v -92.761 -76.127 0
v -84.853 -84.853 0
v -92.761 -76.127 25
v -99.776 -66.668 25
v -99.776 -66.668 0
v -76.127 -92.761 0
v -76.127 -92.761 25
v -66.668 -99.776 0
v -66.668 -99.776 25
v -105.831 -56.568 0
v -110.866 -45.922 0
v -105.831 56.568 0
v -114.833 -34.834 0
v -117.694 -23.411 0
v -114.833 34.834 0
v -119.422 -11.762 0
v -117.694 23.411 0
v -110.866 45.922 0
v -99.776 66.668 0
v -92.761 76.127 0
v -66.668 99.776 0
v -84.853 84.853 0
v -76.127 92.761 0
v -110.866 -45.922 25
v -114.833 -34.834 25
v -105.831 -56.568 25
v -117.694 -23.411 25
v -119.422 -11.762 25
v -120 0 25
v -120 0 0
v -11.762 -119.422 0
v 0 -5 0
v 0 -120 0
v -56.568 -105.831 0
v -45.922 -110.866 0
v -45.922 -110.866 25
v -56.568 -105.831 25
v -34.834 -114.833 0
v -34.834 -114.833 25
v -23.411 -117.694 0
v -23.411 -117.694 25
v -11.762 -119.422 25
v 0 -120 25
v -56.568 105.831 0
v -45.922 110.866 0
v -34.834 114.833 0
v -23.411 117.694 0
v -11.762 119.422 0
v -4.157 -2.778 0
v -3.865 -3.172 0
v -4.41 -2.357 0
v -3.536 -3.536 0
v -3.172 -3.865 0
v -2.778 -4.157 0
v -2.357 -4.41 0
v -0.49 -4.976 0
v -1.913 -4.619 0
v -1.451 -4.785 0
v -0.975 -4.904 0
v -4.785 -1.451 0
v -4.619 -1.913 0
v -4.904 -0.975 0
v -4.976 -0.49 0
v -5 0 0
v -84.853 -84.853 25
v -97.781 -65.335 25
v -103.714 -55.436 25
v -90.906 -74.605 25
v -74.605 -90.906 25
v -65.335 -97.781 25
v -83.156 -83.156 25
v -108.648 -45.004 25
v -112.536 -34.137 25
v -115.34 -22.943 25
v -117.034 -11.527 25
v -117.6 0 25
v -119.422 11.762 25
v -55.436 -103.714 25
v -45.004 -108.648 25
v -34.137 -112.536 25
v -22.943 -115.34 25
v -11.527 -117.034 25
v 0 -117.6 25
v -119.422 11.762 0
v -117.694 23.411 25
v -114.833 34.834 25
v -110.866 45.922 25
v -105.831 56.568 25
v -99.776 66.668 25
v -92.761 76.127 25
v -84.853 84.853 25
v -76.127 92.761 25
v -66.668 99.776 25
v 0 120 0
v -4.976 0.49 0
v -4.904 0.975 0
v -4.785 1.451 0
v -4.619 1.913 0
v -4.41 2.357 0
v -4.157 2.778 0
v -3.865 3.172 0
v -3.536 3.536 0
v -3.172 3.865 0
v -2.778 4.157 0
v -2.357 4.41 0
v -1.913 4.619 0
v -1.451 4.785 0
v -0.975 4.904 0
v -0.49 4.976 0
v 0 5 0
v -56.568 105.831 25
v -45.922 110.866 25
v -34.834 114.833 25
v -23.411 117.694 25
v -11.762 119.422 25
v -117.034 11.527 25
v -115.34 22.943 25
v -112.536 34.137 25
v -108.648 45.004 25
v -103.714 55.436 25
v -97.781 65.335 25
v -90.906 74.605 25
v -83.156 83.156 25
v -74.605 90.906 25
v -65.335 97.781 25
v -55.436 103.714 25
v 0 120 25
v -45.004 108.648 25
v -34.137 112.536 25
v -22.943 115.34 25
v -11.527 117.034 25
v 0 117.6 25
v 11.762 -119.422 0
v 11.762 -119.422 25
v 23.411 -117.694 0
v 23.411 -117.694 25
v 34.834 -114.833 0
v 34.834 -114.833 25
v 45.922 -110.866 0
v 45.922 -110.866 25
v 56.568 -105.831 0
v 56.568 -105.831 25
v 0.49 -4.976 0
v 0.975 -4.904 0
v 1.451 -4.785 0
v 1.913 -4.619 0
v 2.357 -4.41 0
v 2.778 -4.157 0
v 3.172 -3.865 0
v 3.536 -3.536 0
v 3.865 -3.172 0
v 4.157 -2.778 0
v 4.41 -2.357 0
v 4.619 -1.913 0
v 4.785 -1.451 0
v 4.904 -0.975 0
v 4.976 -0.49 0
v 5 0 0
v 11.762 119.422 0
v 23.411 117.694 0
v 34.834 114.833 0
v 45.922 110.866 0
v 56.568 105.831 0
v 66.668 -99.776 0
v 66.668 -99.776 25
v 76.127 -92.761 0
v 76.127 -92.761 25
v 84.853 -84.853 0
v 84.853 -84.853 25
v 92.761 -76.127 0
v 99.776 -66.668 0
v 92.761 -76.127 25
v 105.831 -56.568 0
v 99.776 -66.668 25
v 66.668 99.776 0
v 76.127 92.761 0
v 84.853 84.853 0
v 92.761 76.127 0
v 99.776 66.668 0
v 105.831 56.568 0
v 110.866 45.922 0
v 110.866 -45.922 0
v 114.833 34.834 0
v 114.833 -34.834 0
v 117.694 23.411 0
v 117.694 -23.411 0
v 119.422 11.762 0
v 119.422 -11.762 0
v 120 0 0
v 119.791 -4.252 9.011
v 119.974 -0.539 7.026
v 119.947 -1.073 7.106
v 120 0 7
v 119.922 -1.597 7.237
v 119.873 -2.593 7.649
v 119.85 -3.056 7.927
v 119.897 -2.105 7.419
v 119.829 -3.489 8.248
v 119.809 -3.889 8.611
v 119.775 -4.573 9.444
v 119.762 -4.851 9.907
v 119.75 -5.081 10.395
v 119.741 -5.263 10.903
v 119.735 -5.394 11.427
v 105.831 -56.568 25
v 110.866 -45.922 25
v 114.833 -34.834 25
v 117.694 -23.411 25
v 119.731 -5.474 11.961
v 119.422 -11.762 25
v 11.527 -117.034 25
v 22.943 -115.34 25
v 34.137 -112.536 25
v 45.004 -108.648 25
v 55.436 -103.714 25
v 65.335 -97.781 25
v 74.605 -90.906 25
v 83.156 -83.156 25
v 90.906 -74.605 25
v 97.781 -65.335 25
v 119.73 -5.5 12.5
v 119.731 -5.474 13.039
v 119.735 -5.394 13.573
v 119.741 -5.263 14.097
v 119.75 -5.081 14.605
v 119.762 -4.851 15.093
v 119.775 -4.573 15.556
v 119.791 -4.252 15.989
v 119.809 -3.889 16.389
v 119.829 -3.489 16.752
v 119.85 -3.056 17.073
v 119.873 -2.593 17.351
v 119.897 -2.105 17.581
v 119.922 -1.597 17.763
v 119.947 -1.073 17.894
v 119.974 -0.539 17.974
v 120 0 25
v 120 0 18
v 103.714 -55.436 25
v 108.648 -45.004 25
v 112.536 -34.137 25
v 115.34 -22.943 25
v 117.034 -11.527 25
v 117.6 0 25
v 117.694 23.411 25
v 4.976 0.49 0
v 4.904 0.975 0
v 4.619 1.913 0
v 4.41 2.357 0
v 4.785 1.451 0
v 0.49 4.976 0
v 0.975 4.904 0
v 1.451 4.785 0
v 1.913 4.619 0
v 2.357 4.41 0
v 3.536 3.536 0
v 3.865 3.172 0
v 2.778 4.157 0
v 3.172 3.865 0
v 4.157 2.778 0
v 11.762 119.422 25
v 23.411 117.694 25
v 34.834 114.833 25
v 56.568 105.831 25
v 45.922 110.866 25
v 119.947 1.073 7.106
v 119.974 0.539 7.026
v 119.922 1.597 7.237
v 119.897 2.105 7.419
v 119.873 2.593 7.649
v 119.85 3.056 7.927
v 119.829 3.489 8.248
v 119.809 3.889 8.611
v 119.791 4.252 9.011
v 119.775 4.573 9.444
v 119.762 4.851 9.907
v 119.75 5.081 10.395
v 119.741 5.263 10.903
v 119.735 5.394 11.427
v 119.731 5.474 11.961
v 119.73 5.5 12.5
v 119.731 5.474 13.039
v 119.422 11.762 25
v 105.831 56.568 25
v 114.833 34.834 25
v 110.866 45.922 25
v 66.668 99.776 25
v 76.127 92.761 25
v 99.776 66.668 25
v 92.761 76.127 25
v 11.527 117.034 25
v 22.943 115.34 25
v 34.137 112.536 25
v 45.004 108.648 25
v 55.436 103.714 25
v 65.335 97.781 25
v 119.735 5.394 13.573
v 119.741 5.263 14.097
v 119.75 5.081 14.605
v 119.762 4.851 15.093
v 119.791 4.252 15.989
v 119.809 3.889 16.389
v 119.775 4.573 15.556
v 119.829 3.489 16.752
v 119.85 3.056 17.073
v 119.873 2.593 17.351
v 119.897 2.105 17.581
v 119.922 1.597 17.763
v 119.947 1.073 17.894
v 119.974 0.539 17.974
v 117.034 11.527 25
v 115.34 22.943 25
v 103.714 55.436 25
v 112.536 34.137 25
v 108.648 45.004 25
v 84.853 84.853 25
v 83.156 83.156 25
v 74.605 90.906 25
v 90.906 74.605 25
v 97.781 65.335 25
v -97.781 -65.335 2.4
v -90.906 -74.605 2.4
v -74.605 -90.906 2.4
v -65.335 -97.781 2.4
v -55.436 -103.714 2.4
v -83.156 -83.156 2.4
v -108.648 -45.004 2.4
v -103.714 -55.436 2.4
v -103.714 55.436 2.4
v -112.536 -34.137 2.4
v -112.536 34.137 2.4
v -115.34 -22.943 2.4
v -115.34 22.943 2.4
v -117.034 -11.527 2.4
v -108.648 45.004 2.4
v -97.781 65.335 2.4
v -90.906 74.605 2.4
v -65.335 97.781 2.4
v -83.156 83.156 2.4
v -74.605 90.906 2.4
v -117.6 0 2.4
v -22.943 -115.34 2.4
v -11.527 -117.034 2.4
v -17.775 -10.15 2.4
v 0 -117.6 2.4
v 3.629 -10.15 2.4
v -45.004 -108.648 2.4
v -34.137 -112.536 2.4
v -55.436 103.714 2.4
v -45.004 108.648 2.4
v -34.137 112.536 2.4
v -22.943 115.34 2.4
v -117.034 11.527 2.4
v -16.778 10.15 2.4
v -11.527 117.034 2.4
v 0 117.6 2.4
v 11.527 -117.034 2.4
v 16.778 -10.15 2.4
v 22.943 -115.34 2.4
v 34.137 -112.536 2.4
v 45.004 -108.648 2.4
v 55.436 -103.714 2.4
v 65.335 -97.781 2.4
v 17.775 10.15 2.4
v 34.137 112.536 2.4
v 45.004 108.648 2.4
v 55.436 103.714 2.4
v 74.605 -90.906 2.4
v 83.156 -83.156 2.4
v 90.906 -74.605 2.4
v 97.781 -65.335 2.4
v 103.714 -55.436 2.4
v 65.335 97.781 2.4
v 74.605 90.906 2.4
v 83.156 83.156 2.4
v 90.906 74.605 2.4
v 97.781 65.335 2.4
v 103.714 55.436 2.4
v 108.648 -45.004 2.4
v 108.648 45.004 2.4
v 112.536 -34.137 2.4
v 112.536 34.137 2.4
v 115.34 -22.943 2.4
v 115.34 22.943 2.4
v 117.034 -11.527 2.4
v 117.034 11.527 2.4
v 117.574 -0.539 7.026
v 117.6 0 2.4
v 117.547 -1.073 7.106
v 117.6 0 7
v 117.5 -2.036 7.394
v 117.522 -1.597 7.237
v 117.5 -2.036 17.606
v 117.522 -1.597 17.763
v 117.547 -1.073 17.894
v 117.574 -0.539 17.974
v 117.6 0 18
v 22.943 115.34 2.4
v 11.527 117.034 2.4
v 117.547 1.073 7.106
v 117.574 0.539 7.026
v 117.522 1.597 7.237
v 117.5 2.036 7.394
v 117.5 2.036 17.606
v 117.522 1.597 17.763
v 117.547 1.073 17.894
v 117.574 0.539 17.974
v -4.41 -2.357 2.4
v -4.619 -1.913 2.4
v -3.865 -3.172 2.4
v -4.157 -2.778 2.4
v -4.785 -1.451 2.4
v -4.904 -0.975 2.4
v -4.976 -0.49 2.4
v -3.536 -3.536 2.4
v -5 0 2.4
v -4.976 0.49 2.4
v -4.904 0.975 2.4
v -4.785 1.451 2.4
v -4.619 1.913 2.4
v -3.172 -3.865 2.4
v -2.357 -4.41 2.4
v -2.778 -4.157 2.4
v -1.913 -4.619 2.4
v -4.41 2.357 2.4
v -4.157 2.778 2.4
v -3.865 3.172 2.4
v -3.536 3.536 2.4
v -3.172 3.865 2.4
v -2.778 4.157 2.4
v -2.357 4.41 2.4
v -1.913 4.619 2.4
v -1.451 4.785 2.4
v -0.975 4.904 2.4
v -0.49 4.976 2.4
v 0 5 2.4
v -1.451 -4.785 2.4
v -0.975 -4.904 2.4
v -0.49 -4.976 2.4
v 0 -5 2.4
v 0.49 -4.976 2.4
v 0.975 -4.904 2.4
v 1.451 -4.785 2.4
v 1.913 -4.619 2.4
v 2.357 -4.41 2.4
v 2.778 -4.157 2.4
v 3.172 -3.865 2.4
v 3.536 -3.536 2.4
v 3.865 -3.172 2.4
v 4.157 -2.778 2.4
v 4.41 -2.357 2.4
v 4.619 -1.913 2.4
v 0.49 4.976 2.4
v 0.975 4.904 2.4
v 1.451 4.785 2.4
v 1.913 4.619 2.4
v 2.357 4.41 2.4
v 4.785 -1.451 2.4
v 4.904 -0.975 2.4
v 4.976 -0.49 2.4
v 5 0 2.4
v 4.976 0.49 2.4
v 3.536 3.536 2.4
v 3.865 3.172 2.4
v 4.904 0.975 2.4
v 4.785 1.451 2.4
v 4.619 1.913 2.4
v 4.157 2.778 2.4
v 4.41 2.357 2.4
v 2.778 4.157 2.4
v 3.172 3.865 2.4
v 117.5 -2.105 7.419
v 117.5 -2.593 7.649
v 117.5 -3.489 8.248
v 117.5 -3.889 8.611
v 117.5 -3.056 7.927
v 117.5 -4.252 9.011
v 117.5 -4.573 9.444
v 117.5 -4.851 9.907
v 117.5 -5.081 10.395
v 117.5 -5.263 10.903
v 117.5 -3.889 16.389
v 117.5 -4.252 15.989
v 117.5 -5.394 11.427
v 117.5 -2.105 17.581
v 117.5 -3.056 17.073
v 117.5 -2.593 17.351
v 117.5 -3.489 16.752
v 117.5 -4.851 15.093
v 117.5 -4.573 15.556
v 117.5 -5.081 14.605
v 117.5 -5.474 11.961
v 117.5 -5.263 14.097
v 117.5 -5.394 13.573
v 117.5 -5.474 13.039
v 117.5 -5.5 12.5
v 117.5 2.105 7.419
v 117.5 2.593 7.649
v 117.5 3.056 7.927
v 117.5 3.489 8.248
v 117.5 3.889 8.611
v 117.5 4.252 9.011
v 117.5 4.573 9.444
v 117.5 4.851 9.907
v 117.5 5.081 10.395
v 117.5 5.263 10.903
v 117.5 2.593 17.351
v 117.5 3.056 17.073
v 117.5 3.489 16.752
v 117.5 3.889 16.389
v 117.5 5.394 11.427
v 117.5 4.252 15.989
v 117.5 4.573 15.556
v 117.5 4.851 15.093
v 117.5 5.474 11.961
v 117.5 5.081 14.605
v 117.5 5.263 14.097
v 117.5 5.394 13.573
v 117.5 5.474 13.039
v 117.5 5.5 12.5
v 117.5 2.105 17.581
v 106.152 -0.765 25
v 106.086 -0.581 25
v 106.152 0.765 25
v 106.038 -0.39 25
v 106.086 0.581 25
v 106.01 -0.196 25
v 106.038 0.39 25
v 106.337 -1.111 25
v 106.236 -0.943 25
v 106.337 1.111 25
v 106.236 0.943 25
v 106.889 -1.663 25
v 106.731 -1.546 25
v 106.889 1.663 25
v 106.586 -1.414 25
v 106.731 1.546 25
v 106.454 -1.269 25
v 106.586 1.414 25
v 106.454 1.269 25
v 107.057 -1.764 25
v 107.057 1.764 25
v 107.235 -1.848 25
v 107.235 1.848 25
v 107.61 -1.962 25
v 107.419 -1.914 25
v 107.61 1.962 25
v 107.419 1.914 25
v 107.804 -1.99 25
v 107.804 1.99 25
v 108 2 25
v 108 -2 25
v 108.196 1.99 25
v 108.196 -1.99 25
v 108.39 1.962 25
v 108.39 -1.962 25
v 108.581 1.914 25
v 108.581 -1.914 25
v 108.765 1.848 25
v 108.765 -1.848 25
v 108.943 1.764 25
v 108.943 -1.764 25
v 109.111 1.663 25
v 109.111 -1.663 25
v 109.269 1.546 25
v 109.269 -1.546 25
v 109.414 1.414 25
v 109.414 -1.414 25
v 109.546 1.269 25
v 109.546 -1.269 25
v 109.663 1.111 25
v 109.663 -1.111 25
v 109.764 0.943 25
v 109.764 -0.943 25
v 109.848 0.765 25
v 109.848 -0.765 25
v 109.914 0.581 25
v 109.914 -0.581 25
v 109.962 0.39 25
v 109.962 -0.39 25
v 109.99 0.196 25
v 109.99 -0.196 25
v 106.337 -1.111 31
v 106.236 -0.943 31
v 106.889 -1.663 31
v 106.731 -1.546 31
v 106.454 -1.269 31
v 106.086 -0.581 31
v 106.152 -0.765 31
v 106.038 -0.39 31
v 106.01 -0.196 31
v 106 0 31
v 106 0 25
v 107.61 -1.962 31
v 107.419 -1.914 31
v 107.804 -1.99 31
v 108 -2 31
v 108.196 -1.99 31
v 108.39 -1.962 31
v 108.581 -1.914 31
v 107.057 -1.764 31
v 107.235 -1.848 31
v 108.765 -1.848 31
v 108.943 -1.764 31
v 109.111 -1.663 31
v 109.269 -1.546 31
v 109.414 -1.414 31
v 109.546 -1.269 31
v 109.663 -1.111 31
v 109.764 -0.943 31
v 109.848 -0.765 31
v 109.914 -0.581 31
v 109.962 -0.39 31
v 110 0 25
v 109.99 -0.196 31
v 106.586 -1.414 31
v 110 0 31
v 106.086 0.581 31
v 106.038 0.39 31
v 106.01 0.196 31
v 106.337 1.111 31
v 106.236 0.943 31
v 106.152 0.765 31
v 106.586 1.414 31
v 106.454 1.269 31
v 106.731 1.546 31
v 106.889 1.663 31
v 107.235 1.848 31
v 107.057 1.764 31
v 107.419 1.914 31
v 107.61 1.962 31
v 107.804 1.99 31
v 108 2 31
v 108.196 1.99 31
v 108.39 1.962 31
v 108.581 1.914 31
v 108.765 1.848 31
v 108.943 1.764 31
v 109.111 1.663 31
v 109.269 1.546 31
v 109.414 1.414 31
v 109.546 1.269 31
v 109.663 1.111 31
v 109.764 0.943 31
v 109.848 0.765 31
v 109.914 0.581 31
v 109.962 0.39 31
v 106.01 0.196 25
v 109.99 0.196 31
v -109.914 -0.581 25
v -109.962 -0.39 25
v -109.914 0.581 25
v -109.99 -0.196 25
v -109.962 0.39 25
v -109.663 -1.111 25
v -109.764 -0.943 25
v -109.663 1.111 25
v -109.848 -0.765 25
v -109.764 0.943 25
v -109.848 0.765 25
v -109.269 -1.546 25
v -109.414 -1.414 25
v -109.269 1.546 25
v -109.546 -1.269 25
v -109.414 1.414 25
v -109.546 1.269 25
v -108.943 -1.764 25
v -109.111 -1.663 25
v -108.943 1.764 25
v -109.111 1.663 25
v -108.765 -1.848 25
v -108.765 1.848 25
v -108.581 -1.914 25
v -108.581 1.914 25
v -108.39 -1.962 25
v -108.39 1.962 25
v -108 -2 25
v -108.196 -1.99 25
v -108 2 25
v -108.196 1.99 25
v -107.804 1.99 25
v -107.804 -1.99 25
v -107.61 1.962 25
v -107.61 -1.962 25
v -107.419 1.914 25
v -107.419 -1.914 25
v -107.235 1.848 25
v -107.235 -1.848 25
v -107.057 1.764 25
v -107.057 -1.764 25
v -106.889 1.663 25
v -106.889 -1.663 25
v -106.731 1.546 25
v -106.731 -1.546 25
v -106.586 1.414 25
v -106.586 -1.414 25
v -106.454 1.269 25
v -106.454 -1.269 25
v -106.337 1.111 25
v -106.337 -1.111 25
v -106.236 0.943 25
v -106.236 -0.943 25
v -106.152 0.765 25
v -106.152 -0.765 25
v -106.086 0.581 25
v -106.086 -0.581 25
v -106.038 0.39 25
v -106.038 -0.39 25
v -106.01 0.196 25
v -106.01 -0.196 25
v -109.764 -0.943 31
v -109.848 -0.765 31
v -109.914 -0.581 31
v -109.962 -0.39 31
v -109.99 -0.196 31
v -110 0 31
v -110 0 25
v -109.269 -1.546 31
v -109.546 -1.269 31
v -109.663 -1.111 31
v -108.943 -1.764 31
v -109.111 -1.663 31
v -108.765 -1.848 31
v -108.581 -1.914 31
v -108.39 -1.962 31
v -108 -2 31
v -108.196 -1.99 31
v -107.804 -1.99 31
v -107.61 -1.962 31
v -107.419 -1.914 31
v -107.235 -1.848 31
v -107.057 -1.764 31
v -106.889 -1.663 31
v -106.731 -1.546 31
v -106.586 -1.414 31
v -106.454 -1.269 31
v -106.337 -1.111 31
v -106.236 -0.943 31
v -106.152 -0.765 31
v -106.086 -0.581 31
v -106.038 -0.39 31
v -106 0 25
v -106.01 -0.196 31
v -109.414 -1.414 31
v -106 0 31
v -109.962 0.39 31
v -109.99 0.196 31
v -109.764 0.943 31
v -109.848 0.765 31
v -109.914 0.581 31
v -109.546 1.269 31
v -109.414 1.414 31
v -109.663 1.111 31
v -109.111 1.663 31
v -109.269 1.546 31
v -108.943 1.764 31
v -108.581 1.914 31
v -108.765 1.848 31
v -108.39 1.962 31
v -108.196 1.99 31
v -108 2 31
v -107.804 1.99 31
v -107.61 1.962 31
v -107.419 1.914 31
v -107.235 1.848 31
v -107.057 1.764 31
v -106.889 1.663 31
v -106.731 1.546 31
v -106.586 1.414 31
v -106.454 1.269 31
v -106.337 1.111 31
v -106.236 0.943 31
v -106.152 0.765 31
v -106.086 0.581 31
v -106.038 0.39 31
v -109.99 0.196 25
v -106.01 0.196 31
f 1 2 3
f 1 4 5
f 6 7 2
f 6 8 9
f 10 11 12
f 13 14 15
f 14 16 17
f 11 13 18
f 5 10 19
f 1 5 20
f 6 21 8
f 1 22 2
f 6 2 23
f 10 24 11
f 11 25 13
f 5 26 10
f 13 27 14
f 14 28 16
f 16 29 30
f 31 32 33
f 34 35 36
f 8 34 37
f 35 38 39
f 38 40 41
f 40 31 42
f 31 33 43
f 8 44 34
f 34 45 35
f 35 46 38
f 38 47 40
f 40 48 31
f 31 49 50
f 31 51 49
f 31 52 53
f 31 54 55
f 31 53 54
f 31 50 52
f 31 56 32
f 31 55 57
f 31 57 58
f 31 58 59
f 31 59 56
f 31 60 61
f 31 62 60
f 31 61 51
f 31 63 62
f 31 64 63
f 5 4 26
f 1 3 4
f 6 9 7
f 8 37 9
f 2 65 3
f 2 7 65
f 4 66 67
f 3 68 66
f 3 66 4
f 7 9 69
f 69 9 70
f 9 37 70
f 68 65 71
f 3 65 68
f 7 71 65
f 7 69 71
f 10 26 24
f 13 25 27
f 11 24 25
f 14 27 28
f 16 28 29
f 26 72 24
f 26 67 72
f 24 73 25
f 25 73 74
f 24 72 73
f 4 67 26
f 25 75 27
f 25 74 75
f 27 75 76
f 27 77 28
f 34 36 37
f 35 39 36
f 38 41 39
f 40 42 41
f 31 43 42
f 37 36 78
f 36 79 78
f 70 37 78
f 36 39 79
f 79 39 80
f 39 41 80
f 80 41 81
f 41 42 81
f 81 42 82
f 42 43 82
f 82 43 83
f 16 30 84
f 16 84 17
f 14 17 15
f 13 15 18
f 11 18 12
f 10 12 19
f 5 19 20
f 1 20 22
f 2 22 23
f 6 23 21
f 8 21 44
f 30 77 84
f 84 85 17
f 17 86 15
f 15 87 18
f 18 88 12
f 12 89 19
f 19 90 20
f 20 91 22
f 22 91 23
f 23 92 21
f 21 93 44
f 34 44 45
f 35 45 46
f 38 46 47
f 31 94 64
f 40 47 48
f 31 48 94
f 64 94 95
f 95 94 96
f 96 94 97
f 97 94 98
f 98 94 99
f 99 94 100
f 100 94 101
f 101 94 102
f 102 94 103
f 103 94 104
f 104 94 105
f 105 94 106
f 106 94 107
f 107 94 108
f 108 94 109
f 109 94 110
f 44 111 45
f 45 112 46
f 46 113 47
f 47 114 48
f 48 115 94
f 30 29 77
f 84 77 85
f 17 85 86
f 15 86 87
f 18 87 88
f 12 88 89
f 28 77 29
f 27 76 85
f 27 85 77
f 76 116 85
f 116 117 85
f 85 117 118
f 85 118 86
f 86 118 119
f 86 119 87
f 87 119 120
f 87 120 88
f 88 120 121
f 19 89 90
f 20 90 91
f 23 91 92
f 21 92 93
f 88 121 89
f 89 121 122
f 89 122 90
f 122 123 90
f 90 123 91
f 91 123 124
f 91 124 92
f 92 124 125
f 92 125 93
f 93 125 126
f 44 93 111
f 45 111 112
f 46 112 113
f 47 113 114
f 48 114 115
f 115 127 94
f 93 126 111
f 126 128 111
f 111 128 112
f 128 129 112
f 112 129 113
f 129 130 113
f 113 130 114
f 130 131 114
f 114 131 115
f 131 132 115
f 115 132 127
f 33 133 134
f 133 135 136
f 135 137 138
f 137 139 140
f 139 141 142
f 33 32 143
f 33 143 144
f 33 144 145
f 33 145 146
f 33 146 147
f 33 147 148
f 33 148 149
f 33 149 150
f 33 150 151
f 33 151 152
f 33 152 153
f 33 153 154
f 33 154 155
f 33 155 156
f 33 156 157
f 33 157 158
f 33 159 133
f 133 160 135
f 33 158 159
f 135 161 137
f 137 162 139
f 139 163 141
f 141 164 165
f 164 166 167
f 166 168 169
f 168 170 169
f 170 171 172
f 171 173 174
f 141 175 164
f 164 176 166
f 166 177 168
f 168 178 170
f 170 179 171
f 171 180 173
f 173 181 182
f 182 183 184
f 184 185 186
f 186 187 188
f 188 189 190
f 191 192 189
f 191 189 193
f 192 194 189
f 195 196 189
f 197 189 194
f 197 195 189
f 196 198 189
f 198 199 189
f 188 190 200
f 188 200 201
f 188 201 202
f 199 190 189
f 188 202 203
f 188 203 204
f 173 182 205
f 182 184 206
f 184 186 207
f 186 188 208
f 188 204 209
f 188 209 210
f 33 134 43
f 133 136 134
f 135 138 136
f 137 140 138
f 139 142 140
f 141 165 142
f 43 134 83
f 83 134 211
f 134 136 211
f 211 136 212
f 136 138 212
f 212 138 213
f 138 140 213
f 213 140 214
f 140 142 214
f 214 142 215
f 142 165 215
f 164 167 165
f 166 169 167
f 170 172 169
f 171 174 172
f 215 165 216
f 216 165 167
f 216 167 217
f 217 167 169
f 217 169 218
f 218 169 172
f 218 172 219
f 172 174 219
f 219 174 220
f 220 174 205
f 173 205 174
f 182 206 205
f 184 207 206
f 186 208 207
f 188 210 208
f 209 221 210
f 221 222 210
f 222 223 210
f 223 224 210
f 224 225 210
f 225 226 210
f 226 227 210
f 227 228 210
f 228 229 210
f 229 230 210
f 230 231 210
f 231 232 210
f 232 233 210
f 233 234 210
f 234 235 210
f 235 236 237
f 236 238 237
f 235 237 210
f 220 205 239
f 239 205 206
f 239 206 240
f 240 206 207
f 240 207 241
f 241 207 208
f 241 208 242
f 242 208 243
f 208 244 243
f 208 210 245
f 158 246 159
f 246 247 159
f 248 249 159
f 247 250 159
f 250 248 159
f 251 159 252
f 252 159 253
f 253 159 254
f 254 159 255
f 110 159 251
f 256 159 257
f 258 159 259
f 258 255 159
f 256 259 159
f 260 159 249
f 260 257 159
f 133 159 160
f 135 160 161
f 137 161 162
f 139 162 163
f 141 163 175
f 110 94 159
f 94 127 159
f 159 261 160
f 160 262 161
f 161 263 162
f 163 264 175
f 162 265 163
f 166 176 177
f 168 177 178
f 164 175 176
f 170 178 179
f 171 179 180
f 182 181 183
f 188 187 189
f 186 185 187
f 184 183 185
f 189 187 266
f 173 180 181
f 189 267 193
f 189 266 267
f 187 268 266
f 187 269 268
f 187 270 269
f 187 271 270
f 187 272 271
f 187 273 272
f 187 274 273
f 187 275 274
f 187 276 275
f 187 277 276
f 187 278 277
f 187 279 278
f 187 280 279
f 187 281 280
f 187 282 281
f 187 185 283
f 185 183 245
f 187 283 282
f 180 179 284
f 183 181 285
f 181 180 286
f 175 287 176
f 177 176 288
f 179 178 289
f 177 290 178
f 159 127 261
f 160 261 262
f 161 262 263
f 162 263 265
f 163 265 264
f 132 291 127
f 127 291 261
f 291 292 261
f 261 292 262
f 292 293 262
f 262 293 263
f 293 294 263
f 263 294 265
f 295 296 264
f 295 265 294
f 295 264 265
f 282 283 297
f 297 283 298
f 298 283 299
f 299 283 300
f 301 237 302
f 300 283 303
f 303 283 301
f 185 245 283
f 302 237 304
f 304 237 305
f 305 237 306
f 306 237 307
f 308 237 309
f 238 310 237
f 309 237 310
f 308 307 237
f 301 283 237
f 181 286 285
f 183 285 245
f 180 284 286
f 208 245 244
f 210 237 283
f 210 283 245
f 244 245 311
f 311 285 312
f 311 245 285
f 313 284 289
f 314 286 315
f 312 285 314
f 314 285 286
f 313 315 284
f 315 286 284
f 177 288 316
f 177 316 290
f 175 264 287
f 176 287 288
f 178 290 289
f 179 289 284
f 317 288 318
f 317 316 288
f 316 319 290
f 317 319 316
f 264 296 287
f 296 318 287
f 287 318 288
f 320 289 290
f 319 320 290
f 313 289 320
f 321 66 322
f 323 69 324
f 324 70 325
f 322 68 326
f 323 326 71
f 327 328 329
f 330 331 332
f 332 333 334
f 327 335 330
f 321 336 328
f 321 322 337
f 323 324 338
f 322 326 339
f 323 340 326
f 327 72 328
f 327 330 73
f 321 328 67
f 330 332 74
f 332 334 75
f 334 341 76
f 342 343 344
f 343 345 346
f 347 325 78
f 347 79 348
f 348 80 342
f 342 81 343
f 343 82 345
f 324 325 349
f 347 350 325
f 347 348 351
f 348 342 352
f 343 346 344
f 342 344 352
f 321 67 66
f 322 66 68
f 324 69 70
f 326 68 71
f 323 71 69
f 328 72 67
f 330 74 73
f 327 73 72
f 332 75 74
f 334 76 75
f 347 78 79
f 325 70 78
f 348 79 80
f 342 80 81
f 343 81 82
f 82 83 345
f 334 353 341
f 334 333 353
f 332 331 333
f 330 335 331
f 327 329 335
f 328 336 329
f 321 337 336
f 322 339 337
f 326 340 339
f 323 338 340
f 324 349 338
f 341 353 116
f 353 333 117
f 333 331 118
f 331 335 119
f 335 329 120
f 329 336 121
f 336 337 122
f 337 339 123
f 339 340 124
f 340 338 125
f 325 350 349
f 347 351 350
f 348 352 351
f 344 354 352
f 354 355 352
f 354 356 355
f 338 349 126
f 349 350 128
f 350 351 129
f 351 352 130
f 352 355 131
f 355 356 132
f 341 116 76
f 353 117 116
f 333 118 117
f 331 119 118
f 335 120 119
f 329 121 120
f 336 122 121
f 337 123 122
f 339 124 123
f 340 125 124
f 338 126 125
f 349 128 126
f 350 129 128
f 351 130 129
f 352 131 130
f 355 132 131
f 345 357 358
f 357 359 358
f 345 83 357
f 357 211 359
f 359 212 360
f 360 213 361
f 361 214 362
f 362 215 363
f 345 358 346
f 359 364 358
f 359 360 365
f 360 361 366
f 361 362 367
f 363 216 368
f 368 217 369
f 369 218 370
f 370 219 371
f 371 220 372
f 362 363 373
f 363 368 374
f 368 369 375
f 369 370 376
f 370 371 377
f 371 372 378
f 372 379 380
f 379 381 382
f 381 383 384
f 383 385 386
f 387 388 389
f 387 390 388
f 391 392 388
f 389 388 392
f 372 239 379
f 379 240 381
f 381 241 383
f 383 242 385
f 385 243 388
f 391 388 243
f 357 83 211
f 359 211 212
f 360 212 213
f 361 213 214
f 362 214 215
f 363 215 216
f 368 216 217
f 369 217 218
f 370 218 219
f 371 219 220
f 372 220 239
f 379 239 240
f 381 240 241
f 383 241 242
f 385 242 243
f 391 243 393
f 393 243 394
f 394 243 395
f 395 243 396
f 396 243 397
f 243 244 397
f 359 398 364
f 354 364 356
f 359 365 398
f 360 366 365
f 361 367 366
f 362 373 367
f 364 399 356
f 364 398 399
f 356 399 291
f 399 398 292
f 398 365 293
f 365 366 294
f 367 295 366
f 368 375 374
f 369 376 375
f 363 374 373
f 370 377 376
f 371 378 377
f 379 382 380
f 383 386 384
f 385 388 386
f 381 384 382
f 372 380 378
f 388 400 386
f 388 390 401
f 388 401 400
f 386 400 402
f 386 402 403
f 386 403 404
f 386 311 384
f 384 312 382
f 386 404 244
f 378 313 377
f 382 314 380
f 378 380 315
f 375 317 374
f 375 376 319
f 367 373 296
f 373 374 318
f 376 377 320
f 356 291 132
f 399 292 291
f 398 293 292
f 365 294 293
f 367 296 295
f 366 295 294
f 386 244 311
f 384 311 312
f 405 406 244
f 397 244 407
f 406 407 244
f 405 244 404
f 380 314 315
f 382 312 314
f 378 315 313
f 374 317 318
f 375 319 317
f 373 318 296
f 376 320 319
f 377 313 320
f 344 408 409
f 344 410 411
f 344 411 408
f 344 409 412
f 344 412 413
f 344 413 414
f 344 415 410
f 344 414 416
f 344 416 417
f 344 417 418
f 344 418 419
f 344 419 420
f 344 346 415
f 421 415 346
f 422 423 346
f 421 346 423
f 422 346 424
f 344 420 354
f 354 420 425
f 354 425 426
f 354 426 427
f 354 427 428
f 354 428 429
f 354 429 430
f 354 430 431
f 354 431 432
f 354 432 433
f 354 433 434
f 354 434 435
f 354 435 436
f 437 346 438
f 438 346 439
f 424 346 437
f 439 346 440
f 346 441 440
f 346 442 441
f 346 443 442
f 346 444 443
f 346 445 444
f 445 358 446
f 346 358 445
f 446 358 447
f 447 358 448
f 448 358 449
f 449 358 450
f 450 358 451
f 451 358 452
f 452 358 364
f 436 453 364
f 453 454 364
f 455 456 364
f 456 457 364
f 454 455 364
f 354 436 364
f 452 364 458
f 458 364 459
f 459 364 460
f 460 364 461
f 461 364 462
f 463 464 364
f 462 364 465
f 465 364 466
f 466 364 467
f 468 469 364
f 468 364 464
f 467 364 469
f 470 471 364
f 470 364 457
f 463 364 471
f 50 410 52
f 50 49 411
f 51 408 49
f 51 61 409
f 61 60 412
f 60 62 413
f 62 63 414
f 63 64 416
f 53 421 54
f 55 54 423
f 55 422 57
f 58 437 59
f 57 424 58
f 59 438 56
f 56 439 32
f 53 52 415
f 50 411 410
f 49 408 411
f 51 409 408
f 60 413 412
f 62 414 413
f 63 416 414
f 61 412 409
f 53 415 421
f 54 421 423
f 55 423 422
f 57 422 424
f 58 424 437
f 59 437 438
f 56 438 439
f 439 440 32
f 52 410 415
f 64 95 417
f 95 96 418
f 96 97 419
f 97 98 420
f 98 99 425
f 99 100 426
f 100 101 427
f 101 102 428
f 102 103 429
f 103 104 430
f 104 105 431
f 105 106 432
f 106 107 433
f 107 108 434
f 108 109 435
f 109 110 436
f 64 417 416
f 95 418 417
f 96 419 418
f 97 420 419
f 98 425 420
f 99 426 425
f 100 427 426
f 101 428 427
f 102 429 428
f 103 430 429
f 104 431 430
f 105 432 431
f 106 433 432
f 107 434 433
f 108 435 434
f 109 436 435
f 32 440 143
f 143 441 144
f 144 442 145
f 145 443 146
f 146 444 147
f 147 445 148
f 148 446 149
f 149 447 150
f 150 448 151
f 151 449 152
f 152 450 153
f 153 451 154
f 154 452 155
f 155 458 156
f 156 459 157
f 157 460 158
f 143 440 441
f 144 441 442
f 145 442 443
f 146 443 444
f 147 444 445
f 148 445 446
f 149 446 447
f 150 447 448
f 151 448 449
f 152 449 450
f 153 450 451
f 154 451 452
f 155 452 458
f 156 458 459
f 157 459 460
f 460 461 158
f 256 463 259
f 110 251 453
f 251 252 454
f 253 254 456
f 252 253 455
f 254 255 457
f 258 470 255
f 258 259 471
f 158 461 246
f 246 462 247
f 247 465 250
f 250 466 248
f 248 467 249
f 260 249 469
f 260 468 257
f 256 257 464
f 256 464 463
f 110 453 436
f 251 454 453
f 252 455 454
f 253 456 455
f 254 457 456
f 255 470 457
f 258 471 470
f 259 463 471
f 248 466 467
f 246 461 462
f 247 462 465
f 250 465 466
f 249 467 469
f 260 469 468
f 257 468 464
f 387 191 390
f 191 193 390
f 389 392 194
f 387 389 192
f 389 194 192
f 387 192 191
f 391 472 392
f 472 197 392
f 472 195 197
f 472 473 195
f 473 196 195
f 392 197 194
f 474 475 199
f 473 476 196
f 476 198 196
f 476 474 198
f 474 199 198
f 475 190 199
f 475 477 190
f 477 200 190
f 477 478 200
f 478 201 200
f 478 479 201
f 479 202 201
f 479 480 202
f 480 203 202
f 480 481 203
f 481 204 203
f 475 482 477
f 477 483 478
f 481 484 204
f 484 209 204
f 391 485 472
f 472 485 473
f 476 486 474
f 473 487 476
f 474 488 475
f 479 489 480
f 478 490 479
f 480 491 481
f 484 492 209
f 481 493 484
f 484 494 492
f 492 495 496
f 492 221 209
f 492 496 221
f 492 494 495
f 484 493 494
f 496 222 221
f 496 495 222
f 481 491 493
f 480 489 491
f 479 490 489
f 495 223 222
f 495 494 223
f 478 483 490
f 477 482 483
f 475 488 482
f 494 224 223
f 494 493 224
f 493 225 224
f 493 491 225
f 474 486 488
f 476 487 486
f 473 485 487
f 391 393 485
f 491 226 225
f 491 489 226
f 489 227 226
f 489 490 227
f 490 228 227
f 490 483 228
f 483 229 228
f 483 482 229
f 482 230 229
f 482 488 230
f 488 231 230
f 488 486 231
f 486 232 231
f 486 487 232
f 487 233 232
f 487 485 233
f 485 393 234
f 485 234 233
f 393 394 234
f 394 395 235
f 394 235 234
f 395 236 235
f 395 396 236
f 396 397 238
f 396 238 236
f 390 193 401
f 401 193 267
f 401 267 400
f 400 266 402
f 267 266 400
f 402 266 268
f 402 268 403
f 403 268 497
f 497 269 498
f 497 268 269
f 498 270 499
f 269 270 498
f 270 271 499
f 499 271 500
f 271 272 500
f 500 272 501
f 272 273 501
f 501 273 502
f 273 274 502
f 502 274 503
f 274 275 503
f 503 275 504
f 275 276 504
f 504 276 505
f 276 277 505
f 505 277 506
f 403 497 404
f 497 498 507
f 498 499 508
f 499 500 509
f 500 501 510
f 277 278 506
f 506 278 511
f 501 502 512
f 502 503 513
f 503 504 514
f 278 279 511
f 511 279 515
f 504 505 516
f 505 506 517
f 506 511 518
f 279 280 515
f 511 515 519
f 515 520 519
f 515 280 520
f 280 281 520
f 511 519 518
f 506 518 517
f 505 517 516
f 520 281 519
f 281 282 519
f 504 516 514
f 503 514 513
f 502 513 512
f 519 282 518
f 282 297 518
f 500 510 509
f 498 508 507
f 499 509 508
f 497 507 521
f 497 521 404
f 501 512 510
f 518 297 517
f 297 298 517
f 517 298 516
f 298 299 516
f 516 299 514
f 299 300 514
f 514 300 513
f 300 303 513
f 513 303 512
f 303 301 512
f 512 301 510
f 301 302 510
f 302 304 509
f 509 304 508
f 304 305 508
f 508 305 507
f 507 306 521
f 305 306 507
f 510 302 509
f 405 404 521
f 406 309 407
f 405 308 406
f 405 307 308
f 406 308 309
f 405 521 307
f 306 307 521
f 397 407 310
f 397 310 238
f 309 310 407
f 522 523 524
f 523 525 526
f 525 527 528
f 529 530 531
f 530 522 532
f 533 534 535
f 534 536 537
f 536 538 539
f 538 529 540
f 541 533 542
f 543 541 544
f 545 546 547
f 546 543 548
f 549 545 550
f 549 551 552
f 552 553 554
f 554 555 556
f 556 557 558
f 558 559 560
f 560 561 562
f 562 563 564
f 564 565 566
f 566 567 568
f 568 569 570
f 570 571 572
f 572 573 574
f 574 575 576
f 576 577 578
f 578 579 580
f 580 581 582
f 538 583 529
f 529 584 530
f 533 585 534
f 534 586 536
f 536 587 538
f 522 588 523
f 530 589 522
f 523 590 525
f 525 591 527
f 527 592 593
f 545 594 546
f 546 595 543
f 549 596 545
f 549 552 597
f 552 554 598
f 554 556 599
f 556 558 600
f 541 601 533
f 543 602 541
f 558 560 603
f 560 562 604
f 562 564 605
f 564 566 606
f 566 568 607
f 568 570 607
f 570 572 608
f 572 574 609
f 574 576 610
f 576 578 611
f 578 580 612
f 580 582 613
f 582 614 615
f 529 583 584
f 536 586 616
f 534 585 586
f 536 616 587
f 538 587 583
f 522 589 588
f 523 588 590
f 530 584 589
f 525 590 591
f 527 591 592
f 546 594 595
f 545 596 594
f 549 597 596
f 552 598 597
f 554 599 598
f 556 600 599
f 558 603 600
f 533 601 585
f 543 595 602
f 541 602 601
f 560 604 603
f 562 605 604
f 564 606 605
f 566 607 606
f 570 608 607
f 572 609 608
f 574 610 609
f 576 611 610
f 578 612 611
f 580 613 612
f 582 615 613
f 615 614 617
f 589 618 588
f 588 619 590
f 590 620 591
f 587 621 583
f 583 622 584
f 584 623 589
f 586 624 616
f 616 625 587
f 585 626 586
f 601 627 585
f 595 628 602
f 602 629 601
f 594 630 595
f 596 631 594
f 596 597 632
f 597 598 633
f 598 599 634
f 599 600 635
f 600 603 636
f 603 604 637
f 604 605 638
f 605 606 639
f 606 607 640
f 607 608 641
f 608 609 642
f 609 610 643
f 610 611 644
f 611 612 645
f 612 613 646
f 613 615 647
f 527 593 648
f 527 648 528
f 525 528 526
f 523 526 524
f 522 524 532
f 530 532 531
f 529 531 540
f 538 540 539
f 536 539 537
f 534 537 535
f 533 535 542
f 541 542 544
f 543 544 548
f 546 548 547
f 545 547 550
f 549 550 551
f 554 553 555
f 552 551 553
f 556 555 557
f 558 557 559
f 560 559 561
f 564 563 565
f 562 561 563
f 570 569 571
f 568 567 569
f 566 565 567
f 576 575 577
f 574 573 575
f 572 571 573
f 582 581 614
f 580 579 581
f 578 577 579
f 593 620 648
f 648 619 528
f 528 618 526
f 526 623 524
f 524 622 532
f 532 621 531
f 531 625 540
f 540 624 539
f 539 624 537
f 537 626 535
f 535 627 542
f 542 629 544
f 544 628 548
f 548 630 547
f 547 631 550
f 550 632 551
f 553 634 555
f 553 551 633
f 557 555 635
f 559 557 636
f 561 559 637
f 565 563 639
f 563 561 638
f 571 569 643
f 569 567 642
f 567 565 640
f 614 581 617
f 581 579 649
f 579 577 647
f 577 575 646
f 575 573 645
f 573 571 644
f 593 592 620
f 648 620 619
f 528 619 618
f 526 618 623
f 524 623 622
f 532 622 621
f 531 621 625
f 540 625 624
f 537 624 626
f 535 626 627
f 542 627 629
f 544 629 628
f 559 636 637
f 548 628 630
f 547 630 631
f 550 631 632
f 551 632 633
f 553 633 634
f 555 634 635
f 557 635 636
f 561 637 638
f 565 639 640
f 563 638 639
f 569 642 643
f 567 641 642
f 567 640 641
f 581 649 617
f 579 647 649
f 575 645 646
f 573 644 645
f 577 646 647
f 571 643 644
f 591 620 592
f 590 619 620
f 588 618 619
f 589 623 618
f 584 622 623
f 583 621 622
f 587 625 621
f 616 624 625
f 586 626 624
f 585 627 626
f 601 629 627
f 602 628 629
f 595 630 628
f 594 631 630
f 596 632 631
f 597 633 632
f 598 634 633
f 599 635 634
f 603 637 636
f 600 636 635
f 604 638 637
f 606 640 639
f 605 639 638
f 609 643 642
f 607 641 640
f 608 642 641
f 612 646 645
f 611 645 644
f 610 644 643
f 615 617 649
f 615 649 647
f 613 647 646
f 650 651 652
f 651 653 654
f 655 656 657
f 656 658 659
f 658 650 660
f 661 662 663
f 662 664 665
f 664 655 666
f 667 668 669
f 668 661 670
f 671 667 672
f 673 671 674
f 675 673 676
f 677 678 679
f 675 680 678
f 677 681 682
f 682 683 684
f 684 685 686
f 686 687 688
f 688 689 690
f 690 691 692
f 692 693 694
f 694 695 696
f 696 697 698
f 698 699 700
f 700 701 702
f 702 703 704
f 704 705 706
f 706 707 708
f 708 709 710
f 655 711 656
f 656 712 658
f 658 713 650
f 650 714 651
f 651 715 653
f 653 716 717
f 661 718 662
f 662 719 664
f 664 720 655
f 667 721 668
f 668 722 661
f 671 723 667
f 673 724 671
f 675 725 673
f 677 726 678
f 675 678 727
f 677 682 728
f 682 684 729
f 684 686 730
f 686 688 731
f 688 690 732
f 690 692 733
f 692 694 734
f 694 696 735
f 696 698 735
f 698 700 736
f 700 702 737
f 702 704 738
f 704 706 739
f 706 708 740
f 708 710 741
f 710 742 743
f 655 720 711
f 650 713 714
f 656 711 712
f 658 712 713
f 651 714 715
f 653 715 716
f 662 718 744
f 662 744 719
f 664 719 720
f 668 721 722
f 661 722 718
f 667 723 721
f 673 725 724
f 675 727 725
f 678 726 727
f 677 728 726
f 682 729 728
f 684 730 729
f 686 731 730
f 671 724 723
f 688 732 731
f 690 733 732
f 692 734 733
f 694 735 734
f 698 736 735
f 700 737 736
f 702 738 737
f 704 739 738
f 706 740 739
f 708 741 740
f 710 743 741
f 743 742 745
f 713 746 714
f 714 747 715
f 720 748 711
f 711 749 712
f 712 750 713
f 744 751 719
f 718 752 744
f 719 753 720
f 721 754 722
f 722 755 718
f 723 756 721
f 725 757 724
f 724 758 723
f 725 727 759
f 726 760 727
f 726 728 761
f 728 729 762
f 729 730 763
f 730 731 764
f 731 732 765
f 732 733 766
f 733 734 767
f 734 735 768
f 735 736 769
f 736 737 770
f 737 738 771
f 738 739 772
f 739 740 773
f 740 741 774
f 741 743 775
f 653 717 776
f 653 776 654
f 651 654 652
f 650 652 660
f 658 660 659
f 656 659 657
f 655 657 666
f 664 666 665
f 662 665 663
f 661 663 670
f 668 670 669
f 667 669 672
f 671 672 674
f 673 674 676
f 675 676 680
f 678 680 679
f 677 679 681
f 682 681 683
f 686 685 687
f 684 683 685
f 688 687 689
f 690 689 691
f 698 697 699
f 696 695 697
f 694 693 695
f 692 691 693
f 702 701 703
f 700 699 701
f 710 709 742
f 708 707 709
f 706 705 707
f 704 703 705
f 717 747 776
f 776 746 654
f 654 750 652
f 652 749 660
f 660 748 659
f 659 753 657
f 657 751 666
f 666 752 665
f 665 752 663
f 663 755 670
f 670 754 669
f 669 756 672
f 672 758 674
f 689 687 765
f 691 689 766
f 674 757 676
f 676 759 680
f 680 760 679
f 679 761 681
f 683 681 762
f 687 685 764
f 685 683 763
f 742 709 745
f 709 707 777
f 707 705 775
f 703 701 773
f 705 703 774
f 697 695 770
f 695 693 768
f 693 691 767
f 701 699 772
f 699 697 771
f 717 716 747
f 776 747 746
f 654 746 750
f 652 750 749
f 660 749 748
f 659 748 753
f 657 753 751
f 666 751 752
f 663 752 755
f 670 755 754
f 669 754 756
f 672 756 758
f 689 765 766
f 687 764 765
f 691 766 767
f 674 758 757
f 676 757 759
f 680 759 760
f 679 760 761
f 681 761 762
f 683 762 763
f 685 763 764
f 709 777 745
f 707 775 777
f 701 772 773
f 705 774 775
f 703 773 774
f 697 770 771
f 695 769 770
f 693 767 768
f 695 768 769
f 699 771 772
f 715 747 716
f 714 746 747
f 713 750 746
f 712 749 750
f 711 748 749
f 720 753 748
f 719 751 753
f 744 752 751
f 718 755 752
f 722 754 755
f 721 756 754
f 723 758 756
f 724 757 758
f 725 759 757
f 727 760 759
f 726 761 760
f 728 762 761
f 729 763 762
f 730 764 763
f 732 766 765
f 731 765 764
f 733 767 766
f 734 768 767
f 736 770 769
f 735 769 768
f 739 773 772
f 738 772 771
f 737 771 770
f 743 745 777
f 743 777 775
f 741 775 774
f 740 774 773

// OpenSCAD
// file: util.scad
// Shared helper modules for node-dock parts.
include <params.scad>

// Boss for a heat-set insert. h = total boss height, with insert pocket
// drilled from the top.
module insert_boss(h = 8) {
    difference() {
        cylinder(h = h, d = M3_INSERT_D + 2 * WALL);
        translate([0, 0, h - M3_INSERT_H])
            cylinder(h = M3_INSERT_H + 0.1, d = M3_INSERT_D);
    }
}

// Through-hole for M3 clearance.
module m3_through(h) {
    cylinder(h = h + 0.2, d = M3_CLEAR, center = false);
}

// Alignment peg (printed solid).
module peg(h = 8) {
    cylinder(h = h, d = PEG_D);
}

// Alignment-peg socket.
module peg_hole(h = 8) {
    cylinder(h = h + 0.1, d = PEG_D + 0.2);
}

// Rounded rectangle (2D) for shells.
module rrect(x, y, r = 3) {
    hull() for (sx = [-1, 1], sy = [-1, 1])
        translate([sx * (x/2 - r), sy * (y/2 - r), 0]) circle(r = r);
}

// Servo cavity (rectangular box, centered XY, base at z=0).
module servo_cavity(x, y, z) {
    translate([-x/2, -y/2, 0]) cube([x, y, z + 0.1]);
}
// file: params.scad
// Shared parameters for node-dock shell.
// All dimensions in millimeters. Sourced from
//   ../../bodylink/sim/bodies/dock_humanoid.xml
// where they are in meters.

// ── Global tolerances ────────────────────────────────────────────────
WALL        = 2.4;   // 3 perimeters at 0.4 mm nozzle / 0.2 mm layer
FIT         = 0.3;   // press-fit clearance on servo cavities
PHONE_FIT   = 0.5;   // clearance around phone outline
M3_CLEAR    = 3.3;   // M3 clearance hole
M3_INSERT_D = 5.0;   // heat-set insert outer Ø
M3_INSERT_H = 5.0;   // heat-set insert depth
PEG_D       = 4.0;   // alignment peg Ø (peg) / hole Ø is PEG_D + 0.2

$fn = 64;            // smooth curves by default

// ── Base ─────────────────────────────────────────────────────────────
BASE_D      = 240;
BASE_H      = 50;
BASE_SPLIT  = 25;    // halve the disc horizontally
BASE_FLANGE_D = 90;
BASE_FLANGE_H = 10;

// ── Leg shaft ────────────────────────────────────────────────────────
LEG_D       = 60;
LEG_H       = 70;
LEG_BORE    = 16;    // cable channel Ø

// ── Trunk ────────────────────────────────────────────────────────────
TRUNK_X     = 100;
TRUNK_Y     = 80;
TRUNK_Z     = 140;

// ── Neck stub (enlarged from XML 30³ to fit MG996R + MG90S stacked) ──
NECK_X      = 30;
NECK_Y      = 40;
NECK_Z      = 40;

// ── Head / phone cradle ──────────────────────────────────────────────
// XML head_plate visible face: 200 × 100 mm (landscape), 20 mm thick
// XML head_frame_back: 216 × 26 × 114 mm
HEAD_X      = 216;
HEAD_Y      = 26;
HEAD_Z      = 114;
PHONE_X     = 165;   // typical 6.1" phone outline; iPhone 15-class
PHONE_Y     = 9;     // phone thickness
PHONE_Z     = 76;
BEZEL_LIP   = 6;     // visible-face overlap on the front bezel

// ── Shoulder bracket ─────────────────────────────────────────────────
SHB_X       = 36;
SHB_Y       = 28;
SHB_Z       = 28;

// ── Arm ──────────────────────────────────────────────────────────────
ARM_D       = 26;
ARM_L       = 60;

// ── Servo cavities (datasheet + FIT clearance) ───────────────────────
// DS3218 standard servo body: 40 × 20 × 38.5 + cable boss
DS3218_X = 40.0 + FIT;
DS3218_Y = 20.0 + FIT;
DS3218_Z = 38.5 + FIT;
DS3218_EAR_W = 54.5;   // mounting-ear span
DS3218_EAR_T = 2.5;

// MG996R: 40.7 × 19.7 × 42.9
MG996R_X = 40.7 + FIT;
MG996R_Y = 19.7 + FIT;
MG996R_Z = 42.9 + FIT;

// MG90S / SG90: 22.8 × 12.2 × 28.5 (MG90S body height includes flange)
MG90S_X = 22.8 + FIT;
MG90S_Y = 12.2 + FIT;
MG90S_Z = 28.5 + FIT;
// main file
// Base — lower half (z = 0 .. BASE_SPLIT).
// Houses DS3218 yaw servo, 12V jack, PCA9685-side wiring.
include <params.scad>
use <util.scad>

module base_lower() {
    difference() {
        // Outer disc, lower half.
        cylinder(h = BASE_SPLIT, d = BASE_D);

        // Hollow interior, leaving WALL on sides and floor.
        translate([0, 0, WALL])
            cylinder(h = BASE_SPLIT, d = BASE_D - 2 * WALL);

        // DS3218 servo cavity (shaft up, sits on the floor).
        translate([0, 0, WALL])
            servo_cavity(DS3218_X, DS3218_Y, DS3218_Z);

        // Servo output-shaft access hole (Ø10).
        translate([0, 0, -0.1]) cylinder(h = WALL + 0.2, d = 10);

        // 12V barrel-jack hole on the rim (Ø11, at +X side).
        translate([BASE_D/2 - WALL - 0.1, 0, BASE_SPLIT/2])
            rotate([0, 90, 0]) cylinder(h = WALL + 0.4, d = 11);

        // Rim screw holes for joining upper/lower halves (6 around).
        for (a = [0 : 60 : 359])
            rotate([0, 0, a])
                translate([BASE_D/2 - 6, 0, BASE_SPLIT - 6])
                    cylinder(h = 7, d = M3_CLEAR);
    }

    // Insert bosses underneath the rim screw holes, in the upper half.
    // (Bosses live in the *upper* half — see base_upper.scad.)

    // Alignment pegs sticking up at 2 corners (0° and 180°).
    for (a = [0, 180])
        rotate([0, 0, a])
            translate([BASE_D/2 - 12, 0, BASE_SPLIT])
                peg(h = 6);
}

base_lower();
